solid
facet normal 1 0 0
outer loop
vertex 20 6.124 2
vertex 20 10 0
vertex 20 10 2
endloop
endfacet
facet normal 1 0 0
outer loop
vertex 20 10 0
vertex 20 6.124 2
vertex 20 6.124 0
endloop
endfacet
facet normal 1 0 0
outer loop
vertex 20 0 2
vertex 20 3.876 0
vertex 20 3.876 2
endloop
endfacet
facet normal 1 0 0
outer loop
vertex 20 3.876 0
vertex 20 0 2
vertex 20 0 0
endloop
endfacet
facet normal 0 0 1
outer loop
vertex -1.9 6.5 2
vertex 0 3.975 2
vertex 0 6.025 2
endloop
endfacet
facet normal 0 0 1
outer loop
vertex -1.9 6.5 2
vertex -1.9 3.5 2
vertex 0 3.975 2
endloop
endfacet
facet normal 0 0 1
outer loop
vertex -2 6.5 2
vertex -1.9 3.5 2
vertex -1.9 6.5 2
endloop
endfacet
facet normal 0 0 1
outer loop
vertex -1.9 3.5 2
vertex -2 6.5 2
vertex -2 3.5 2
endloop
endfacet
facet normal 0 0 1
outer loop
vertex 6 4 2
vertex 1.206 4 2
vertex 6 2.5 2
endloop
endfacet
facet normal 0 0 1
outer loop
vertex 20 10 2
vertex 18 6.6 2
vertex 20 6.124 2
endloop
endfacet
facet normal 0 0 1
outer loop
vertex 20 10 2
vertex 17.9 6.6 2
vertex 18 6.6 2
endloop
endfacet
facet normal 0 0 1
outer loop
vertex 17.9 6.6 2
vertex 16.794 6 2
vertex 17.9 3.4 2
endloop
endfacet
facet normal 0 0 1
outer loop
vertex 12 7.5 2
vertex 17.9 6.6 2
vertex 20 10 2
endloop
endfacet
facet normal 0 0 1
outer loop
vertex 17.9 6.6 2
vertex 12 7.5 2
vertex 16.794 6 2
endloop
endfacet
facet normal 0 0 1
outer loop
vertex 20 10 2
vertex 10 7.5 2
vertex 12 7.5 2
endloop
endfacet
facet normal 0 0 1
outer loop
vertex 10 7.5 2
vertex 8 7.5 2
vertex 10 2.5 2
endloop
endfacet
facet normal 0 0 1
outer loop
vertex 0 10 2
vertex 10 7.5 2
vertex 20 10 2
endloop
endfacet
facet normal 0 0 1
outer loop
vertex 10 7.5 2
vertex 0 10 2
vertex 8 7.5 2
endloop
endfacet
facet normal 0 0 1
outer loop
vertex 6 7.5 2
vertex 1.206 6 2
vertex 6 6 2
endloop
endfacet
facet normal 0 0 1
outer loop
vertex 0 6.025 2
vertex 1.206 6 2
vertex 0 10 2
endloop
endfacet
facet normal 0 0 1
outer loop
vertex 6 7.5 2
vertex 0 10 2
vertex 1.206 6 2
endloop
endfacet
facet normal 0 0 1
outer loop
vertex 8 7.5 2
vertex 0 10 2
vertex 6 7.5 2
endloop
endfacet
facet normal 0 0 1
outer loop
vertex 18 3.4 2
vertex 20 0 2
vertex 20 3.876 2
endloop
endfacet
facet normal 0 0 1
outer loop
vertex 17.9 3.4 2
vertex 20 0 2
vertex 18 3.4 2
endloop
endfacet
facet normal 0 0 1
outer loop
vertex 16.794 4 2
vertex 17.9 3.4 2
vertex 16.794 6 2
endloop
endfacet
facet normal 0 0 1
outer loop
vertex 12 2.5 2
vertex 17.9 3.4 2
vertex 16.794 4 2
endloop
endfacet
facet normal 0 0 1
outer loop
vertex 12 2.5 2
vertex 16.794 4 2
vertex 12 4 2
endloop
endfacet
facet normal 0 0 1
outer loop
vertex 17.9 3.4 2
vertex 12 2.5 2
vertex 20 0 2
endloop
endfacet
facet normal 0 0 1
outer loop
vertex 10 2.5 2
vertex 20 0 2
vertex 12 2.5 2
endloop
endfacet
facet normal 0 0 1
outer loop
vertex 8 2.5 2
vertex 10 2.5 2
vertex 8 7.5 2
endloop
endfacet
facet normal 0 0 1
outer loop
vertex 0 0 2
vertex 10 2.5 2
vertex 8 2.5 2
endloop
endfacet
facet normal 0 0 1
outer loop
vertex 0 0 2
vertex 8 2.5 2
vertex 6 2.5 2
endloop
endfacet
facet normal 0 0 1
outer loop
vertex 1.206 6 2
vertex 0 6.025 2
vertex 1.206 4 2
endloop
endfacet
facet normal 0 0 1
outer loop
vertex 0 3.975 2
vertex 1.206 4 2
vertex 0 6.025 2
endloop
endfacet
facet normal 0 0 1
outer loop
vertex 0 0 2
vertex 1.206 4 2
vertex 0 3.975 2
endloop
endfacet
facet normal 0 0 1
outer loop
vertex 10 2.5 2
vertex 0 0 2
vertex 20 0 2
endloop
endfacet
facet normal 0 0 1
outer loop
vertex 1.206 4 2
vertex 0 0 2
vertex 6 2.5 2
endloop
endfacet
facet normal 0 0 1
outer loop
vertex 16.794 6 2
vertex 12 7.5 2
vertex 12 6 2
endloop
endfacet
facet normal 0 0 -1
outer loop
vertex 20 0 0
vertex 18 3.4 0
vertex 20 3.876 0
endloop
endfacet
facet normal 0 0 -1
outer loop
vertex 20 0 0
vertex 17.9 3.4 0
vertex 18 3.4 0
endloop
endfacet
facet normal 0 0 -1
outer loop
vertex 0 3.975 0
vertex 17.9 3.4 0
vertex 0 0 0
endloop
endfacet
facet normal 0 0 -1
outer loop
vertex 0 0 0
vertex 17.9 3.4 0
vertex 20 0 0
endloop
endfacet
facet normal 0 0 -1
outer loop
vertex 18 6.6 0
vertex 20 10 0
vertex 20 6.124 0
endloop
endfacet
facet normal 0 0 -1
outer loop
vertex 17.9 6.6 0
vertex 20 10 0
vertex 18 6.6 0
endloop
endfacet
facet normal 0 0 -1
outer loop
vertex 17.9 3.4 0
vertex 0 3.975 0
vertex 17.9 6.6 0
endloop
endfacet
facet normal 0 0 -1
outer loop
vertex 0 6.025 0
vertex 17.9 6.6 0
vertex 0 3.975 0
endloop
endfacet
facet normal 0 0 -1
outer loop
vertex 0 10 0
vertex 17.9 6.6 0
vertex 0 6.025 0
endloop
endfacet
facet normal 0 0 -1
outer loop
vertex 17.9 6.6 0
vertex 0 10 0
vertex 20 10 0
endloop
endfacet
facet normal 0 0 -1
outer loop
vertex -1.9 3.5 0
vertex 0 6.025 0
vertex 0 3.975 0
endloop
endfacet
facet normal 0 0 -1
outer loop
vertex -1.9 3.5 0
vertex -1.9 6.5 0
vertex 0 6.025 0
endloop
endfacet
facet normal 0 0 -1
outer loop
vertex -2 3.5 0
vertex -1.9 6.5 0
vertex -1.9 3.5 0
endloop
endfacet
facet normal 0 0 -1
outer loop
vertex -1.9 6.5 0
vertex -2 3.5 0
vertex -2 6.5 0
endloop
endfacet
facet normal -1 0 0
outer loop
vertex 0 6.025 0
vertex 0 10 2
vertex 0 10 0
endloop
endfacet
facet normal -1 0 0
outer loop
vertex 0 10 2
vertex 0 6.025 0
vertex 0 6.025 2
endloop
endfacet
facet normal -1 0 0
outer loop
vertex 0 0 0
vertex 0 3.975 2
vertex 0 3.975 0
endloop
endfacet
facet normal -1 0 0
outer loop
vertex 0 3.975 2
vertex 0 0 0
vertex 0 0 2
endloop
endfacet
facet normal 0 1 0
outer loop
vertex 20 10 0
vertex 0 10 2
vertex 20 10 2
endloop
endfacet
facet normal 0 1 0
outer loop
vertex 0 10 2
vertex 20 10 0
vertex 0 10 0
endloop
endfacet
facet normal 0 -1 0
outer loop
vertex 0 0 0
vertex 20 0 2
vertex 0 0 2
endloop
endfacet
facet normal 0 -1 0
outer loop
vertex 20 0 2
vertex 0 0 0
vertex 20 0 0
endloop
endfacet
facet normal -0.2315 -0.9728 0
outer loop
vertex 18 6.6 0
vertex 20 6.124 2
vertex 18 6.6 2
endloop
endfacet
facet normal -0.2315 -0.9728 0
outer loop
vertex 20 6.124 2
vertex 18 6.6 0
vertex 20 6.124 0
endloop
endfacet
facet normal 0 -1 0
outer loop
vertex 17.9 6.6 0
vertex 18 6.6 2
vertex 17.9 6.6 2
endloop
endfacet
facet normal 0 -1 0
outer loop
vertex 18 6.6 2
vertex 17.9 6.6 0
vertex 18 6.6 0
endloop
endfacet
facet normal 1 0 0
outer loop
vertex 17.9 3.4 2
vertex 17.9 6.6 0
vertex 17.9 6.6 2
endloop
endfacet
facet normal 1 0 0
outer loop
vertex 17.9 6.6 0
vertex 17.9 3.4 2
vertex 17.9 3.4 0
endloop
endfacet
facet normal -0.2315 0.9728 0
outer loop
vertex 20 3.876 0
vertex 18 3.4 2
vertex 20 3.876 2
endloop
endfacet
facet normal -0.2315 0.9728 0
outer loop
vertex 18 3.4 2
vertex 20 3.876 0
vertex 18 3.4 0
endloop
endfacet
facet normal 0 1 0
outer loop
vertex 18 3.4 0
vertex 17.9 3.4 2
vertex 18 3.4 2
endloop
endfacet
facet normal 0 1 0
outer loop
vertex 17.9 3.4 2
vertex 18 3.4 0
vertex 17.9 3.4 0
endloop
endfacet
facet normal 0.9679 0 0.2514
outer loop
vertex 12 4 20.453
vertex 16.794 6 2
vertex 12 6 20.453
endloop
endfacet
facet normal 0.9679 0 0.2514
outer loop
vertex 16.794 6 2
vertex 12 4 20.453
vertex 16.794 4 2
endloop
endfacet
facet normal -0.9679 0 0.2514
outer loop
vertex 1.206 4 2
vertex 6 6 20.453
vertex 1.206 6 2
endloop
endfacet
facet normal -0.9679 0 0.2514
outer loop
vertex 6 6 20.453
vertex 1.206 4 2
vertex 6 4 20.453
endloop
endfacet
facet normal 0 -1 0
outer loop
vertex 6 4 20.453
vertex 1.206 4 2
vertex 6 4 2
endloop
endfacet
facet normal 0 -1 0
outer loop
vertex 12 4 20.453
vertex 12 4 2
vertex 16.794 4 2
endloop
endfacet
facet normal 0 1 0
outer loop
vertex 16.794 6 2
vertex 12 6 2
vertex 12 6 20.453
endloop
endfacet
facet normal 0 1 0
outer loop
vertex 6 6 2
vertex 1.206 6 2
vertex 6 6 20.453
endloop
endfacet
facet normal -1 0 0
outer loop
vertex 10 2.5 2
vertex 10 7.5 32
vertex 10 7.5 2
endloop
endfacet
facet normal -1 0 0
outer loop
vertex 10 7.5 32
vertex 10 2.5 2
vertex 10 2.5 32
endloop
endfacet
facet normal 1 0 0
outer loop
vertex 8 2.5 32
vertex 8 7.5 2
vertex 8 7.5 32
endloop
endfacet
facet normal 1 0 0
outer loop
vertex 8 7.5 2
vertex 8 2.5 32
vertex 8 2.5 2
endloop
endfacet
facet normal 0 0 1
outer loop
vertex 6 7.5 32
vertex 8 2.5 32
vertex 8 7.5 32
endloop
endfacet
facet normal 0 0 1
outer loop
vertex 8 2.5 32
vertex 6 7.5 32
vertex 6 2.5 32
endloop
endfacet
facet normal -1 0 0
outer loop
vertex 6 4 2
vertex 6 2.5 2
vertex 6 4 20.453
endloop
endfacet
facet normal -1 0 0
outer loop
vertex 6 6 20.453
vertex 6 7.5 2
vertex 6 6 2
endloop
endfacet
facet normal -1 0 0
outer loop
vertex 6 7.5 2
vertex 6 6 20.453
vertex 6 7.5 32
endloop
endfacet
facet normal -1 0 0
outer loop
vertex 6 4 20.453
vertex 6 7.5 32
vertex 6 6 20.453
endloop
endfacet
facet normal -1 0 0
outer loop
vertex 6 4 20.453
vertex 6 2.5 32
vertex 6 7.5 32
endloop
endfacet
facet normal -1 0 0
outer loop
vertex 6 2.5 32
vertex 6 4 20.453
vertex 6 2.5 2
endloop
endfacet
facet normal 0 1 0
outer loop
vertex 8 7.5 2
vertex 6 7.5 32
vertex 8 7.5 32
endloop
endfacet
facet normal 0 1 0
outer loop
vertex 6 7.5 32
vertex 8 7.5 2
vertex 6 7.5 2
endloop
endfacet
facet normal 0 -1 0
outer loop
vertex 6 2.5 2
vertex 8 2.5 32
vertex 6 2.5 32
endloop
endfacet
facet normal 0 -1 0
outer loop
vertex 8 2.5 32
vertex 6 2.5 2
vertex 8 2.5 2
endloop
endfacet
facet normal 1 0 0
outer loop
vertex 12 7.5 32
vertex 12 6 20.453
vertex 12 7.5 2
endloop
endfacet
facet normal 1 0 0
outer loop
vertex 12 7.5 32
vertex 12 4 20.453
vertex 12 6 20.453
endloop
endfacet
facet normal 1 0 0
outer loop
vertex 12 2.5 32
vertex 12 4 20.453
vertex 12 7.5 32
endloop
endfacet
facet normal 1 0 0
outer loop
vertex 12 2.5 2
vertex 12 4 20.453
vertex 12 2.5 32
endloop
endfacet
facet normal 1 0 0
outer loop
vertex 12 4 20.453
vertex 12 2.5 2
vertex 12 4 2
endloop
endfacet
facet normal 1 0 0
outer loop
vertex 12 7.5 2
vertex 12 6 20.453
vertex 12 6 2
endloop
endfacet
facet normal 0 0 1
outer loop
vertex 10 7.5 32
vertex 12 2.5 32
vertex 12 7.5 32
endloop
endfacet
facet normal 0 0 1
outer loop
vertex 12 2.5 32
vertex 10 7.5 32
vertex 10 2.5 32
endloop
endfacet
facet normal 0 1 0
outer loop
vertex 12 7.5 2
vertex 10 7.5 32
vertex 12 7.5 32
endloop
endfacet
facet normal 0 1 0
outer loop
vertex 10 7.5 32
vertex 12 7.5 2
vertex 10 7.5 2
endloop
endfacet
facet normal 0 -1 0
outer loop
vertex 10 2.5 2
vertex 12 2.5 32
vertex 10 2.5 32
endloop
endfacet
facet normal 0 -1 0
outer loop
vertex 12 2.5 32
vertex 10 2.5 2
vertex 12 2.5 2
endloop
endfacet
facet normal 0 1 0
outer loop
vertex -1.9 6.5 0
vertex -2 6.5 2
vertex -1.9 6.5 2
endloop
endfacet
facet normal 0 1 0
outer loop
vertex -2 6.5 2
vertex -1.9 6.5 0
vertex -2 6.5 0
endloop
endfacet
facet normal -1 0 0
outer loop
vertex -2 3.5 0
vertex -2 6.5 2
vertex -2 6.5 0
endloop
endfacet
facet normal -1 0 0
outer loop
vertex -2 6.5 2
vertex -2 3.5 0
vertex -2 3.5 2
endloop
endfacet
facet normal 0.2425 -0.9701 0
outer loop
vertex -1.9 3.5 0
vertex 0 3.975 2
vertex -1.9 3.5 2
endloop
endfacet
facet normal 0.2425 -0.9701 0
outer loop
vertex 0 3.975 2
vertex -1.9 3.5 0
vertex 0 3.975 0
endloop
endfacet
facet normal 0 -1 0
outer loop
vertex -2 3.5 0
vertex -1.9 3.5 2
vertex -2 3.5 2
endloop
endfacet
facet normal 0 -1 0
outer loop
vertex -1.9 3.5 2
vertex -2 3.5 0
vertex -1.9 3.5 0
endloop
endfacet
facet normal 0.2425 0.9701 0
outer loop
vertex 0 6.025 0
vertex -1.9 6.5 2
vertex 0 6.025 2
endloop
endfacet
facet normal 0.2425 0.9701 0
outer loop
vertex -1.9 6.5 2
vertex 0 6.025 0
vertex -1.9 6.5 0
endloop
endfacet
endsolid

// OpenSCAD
echo(version=version());

translate([-1, 0, 0]){
    translate([7, 2.5, 2]) cube([2, 5, 30]);
    translate([11, 2.5, 2]) cube([2, 5, 30]);

    difference(){
        translate([10, 6, 12]) rotate([90, 270, 0]) scale([20,9,1]) cylinder(h=2, r=1, center=false, $fn=3);
        translate([9, 2.5, 2]) cube([2, 5, 30]);
    }
}

// base
difference(){
    cube([20, 10, 2]);
    translate([20, 3.9, 0]) {
        hull(){
            cube([0.1,2.2,2]);
            translate([-2.1, -0.5, 0]) cube([0.1,3.2,2]);
        }
    }
}

translate([0, 4, 0]) {
    hull(){
        cube([0.1,2,2]);
        translate([-2, -0.5, 0]) cube([0.1,3,2]);
    }
}
